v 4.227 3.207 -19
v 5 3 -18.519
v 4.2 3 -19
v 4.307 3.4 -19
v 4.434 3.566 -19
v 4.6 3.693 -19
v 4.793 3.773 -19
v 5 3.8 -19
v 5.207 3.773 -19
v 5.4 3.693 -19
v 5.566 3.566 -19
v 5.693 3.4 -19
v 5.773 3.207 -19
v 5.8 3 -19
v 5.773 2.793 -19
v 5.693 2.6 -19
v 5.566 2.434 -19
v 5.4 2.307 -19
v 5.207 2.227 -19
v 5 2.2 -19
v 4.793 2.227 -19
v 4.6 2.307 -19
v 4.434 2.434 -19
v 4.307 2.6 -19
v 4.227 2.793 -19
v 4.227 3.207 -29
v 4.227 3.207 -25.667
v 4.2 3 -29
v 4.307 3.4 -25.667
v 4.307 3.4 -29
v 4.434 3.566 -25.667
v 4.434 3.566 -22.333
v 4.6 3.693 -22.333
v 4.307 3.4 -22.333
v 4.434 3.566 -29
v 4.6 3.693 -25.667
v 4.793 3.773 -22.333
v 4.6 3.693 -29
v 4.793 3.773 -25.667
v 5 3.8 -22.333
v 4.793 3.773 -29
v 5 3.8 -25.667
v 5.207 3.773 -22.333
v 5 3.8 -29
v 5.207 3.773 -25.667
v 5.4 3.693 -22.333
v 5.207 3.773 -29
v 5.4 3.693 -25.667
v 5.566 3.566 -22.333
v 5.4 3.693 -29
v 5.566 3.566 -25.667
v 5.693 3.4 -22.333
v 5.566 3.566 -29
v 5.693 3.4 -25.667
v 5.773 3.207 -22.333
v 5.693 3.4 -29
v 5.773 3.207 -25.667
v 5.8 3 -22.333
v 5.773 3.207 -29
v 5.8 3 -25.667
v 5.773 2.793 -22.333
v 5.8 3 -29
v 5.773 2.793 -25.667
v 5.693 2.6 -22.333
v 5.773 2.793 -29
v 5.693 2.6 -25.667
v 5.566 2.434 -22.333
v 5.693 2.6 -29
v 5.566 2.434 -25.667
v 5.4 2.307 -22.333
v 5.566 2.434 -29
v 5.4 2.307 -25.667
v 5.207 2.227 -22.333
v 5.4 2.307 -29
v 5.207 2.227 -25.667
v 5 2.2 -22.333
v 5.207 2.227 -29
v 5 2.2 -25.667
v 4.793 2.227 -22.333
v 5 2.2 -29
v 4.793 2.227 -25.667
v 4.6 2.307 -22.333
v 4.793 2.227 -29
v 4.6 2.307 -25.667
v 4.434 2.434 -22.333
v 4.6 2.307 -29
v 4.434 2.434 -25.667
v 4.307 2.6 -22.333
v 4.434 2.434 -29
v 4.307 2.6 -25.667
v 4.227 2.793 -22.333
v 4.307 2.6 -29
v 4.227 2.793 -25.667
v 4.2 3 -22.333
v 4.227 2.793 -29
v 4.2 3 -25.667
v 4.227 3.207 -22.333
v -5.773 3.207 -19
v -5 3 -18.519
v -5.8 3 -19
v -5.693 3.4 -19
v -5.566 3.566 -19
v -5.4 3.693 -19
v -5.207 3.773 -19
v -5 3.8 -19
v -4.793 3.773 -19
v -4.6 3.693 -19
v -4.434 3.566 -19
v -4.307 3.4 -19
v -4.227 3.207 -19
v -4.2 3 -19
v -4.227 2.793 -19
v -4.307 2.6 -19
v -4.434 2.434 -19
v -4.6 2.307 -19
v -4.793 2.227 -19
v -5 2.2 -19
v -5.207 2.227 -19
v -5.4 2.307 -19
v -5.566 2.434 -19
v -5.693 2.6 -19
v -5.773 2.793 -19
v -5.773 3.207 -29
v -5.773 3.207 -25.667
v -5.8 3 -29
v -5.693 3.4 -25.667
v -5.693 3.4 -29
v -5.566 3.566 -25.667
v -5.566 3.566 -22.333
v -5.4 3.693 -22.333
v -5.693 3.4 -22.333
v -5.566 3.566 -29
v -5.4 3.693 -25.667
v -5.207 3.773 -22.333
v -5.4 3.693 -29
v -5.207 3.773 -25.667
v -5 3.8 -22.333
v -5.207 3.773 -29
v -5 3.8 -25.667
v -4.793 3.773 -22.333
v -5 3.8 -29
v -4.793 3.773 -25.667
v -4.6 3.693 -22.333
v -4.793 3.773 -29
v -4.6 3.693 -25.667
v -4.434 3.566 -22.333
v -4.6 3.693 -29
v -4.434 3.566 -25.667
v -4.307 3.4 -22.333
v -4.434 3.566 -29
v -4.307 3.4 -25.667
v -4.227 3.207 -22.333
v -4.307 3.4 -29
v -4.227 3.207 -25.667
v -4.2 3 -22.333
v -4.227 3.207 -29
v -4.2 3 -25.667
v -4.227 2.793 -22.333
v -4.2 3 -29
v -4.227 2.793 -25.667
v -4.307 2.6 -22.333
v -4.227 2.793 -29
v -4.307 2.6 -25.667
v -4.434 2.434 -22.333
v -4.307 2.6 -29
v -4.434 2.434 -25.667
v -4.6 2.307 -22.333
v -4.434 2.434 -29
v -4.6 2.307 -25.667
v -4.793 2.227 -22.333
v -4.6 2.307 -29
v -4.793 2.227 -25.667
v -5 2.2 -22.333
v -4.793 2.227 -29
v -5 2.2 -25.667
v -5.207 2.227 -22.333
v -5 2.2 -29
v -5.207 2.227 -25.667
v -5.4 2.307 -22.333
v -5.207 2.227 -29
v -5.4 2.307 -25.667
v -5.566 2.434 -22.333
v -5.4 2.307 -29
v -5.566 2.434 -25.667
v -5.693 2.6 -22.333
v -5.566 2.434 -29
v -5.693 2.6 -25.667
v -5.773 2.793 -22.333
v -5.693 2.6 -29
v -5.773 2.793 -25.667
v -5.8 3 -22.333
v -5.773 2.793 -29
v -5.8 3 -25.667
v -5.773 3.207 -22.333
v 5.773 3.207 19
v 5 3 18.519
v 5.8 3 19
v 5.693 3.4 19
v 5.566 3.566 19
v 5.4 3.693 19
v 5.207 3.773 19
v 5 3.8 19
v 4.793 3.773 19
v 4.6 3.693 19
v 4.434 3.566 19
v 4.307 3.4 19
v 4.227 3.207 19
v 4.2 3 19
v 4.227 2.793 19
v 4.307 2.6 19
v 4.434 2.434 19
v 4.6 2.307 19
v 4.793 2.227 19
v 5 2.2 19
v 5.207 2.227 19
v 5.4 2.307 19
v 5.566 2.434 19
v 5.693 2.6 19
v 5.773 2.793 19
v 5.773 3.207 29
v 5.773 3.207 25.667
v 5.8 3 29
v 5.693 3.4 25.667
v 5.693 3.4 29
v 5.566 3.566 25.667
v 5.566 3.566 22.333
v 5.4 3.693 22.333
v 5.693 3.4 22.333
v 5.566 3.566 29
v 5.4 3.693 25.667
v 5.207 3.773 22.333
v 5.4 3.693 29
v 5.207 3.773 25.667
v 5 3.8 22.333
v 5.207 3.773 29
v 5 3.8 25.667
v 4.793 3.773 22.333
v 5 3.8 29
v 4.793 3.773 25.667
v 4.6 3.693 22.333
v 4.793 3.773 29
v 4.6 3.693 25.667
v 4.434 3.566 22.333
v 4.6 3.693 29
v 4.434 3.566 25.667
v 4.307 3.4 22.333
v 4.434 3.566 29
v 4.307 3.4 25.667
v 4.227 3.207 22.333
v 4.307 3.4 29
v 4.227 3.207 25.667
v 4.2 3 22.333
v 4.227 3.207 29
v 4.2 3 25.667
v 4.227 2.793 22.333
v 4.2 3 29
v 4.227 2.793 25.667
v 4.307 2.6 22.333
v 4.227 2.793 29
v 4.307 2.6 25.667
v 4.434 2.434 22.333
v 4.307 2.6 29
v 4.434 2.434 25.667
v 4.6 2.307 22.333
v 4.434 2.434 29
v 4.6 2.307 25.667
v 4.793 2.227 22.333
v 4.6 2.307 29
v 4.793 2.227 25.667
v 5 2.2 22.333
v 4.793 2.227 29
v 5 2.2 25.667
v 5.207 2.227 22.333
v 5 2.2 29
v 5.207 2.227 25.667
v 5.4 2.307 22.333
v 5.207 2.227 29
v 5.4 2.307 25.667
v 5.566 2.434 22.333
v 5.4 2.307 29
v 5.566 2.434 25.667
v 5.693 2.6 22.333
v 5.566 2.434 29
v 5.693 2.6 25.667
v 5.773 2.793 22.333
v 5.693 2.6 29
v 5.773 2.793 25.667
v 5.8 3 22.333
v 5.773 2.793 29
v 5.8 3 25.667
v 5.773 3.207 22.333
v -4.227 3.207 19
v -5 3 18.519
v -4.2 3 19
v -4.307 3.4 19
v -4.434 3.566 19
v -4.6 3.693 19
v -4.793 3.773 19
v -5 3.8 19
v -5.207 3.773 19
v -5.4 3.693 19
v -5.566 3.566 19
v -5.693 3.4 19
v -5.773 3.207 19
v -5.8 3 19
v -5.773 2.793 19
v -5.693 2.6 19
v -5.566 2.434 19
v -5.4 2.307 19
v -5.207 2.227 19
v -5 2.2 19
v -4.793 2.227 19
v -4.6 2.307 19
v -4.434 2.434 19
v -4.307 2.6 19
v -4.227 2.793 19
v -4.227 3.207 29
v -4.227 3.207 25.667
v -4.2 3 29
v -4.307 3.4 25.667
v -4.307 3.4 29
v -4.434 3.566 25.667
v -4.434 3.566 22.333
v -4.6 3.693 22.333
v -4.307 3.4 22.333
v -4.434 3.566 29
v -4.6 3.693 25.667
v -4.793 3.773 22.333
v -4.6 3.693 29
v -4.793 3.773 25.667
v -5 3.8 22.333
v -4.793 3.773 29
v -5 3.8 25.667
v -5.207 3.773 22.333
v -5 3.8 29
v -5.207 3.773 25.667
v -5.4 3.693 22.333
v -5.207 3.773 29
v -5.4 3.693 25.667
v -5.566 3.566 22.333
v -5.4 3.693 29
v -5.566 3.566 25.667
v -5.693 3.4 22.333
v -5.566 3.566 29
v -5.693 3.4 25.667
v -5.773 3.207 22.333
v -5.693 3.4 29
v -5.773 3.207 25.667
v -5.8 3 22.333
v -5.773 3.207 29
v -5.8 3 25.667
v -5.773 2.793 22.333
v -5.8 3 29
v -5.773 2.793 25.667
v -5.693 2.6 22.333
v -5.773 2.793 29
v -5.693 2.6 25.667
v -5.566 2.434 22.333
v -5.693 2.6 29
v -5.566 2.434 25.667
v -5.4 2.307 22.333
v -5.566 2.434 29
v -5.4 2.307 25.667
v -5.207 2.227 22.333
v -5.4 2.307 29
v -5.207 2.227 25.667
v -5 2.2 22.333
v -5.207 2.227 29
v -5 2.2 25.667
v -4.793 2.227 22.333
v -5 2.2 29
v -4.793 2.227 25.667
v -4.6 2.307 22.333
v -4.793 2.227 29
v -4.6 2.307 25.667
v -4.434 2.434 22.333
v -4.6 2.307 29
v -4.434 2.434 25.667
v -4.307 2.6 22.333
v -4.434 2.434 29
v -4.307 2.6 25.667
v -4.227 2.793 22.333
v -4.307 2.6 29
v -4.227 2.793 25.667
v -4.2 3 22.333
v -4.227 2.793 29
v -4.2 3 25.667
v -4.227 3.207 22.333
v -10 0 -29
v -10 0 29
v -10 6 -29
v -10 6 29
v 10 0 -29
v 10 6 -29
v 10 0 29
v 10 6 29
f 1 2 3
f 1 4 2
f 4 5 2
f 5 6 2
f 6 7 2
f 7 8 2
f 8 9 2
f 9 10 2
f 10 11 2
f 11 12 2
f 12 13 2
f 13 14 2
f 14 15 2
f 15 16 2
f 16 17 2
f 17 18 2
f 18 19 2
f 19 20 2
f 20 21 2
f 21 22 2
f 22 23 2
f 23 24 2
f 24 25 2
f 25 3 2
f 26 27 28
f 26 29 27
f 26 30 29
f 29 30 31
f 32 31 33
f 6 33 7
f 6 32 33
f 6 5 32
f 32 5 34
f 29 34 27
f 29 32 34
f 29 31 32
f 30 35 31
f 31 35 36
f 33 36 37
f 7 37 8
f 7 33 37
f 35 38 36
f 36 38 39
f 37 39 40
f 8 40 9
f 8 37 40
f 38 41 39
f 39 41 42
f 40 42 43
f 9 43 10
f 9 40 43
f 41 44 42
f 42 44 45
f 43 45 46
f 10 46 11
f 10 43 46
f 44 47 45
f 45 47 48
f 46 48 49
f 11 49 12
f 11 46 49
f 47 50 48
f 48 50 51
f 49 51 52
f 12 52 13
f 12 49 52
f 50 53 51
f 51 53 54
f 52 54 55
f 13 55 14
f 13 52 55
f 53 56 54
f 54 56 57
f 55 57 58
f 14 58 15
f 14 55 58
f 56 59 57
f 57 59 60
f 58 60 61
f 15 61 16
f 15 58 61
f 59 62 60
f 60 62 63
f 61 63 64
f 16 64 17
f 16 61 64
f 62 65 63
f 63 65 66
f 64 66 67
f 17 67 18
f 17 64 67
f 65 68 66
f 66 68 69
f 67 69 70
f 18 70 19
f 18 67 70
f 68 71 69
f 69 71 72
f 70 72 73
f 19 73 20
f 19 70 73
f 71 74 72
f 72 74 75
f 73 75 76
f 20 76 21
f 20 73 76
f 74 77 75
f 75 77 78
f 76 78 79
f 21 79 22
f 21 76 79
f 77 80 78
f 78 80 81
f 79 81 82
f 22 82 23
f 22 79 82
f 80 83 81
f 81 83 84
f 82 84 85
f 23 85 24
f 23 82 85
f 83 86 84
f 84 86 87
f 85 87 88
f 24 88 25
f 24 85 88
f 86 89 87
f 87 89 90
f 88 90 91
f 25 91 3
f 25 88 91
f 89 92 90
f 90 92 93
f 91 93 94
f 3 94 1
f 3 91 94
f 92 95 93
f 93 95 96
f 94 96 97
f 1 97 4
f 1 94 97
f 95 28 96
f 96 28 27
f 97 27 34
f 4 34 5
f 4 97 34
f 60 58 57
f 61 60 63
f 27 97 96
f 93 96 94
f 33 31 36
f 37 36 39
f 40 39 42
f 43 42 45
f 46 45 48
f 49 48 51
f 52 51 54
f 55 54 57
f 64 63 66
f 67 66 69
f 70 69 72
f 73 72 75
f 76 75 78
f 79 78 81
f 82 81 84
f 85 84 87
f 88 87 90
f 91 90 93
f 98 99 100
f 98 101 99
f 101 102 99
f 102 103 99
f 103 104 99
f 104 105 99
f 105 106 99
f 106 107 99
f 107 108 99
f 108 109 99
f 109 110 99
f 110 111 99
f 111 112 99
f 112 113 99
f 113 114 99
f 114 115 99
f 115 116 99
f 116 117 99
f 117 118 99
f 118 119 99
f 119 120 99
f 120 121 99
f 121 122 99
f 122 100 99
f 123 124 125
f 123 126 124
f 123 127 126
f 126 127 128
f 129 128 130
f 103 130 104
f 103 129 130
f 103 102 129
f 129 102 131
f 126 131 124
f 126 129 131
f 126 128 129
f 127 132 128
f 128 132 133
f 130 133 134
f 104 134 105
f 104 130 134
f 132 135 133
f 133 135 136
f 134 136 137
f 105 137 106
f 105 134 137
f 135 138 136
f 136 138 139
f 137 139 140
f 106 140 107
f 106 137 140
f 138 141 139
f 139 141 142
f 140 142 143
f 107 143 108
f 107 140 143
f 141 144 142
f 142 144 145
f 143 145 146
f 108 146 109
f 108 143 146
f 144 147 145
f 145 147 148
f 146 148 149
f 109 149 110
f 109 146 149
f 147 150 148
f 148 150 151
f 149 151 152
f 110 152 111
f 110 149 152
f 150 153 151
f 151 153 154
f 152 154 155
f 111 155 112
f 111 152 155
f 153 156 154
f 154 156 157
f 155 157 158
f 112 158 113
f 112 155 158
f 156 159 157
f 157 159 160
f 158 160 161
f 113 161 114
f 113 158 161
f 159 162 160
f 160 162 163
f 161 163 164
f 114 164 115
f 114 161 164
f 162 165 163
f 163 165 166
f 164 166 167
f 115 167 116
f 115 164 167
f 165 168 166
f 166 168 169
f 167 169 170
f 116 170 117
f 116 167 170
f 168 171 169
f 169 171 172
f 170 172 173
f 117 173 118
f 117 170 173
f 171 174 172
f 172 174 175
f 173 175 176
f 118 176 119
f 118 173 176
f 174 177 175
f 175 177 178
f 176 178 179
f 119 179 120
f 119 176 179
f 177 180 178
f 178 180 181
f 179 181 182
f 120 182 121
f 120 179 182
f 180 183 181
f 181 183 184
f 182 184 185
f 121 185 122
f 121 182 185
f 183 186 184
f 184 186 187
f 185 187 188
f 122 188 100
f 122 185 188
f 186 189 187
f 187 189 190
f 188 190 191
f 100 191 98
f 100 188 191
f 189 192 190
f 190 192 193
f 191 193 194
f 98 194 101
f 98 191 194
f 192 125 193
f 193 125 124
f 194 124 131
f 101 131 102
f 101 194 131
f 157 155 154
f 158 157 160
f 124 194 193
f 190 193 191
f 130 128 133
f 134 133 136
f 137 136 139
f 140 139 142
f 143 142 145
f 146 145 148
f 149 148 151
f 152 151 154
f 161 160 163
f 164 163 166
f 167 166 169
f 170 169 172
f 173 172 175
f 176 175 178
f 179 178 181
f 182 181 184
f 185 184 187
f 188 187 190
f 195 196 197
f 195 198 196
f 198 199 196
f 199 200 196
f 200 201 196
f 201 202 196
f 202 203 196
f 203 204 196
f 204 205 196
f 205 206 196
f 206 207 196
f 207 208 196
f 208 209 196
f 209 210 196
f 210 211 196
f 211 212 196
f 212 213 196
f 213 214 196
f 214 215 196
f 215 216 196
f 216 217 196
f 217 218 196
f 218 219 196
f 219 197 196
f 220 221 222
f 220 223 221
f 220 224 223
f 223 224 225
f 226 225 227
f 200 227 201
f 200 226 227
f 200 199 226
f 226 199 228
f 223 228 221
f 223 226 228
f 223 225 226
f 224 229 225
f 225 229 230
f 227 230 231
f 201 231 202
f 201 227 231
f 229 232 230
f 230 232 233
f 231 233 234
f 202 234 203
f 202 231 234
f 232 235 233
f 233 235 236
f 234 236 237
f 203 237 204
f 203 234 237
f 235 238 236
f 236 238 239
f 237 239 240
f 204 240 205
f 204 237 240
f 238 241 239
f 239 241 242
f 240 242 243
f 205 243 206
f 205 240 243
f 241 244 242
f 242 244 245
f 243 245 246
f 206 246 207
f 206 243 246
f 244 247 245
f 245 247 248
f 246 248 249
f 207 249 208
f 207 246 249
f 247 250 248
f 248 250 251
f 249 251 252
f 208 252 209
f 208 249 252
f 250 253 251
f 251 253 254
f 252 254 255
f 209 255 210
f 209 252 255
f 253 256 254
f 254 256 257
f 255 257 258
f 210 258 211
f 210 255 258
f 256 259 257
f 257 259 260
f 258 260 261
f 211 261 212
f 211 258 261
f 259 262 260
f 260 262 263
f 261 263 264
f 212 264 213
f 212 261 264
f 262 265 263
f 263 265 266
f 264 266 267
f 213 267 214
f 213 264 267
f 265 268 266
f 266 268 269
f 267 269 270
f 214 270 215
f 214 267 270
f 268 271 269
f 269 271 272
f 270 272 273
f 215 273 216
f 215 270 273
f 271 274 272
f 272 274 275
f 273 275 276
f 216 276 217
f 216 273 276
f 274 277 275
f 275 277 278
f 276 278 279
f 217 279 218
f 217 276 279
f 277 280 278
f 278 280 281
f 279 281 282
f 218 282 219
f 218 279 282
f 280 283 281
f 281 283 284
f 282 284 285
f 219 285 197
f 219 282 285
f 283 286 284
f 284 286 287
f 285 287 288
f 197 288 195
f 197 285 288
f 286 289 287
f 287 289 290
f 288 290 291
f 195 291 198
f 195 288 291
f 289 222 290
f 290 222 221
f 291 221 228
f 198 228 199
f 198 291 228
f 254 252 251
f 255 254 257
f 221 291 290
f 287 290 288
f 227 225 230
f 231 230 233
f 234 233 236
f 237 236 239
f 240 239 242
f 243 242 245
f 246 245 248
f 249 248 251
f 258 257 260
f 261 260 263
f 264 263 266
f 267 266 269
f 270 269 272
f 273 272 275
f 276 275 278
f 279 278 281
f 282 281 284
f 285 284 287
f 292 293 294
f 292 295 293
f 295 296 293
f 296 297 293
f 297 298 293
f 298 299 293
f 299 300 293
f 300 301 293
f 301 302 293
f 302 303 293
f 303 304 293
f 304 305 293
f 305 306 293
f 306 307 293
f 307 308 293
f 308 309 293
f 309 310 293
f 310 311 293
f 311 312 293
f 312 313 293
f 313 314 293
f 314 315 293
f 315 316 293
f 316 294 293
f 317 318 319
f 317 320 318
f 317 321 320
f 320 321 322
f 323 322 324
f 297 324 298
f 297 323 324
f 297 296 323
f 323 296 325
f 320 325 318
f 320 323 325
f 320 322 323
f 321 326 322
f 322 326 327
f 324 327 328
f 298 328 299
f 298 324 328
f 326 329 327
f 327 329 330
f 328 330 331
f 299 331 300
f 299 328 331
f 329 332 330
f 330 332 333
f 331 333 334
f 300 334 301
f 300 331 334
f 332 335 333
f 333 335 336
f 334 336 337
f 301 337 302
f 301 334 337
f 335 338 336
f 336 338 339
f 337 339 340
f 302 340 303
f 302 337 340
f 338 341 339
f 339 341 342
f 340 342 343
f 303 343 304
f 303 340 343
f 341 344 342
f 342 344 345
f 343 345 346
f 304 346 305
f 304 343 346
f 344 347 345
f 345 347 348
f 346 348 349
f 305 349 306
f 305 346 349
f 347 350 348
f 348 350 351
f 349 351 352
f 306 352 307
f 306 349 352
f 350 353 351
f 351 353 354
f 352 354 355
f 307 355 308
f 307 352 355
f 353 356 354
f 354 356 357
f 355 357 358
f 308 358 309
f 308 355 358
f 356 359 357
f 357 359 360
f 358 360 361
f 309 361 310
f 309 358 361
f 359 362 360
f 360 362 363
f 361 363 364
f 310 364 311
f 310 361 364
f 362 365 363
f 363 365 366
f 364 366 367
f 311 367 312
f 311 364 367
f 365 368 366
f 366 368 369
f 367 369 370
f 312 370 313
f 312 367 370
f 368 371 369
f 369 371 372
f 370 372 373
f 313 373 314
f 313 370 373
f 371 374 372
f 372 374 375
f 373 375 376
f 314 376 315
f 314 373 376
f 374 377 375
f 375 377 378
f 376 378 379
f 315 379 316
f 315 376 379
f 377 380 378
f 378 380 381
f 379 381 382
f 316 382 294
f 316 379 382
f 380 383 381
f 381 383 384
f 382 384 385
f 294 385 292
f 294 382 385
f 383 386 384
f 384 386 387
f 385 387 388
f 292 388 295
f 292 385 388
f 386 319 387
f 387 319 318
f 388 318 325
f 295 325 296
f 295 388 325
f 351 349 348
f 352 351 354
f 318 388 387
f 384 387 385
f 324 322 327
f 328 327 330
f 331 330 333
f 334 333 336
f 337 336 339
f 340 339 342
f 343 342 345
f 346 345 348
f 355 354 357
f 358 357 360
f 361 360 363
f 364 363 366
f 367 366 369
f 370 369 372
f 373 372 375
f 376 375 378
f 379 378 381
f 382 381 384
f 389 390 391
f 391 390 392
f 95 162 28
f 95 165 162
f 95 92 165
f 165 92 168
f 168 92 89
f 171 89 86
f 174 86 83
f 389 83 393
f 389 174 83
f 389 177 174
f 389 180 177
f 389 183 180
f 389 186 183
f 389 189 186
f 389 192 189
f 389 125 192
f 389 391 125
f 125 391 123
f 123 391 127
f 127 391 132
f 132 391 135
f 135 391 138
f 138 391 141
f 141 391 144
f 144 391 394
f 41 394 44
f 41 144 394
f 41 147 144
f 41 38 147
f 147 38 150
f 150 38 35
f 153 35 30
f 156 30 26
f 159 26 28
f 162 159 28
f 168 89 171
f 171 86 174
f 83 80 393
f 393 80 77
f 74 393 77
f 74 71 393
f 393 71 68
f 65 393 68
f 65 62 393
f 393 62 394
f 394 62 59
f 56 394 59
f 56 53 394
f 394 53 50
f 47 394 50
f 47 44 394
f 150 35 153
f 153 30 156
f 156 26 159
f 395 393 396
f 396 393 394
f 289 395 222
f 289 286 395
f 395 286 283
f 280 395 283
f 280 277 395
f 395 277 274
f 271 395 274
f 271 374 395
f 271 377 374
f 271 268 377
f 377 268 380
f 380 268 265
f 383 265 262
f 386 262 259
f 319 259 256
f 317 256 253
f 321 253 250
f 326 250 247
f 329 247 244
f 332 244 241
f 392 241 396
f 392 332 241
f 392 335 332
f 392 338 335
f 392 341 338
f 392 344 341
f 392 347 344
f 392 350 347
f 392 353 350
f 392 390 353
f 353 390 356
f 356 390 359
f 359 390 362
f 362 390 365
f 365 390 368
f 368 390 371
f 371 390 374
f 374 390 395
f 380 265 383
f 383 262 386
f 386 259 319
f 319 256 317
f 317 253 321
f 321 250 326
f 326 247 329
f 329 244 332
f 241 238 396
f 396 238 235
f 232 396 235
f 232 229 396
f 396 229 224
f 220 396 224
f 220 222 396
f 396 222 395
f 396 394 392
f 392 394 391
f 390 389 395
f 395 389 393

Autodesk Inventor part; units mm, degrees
ref_plane "YZ Plane" through (0, 0, 0) normal (1, 0, 0) x (0, 1, 0)
ref_plane "XZ Plane" through (0, 0, 0) normal (0, 1, 0) x (-1, 0, 0)
ref_plane "XY Plane" through (0, 0, 0) normal (0, 0, 1) x (1, 0, 0)
sketch "スケッチ1" plane through (0, 0, 0) normal (0, 1, 0) x (-1, 0, 0)
  line L0 (-10, 29) -> (10, 29)
  line L1 (10, 29) -> (10, -29)
  line L2 (10, -29) -> (-10, -29)
  line L3 (-10, -29) -> (-10, 29)
  point P0 (0, 0)
  dimension "d0" = 20
  dimension "d2" = 58
  dimension "d3" = 29
  dimension "d4" = 10
extrude "押し出し1" add sketch "スケッチ1" along normal blind 6
sketch "スケッチ2" plane through (-10, 0, 29) normal (0, 0, 1) x (1, 0, 0)
  line L0 (20, 0) -> (0, 0) projected
  line L1 (0, 0) -> (0, 6) projected
  circle A0 centre (5, 3) radius 1
  circle A1 centre (15, 3) radius 1
  point P0 (10, 0)
  dimension "d7" = 2
  dimension "d9" = 10
  dimension "d10" = 5
  dimension "d11" = 3
  dimension "d12" = 3
hole "穴1" at (5, 3, 29) at (-5, 3, 29) direction (0, 0, -1) diameter 1.6 depth 10 tip angle 118
sketch "スケッチ3" plane through (10, 0, -29) normal (0, 0, -1) x (-1, 0, 0)
  line L0 (20, 0) -> (0, 0) projected
  line L1 (0, 0) -> (0, 6) projected
  circle A0 centre (5, 3) radius 1
  circle A1 centre (15, 3) radius 1
  point P0 (10, 0)
  dimension "d20" = 2
  dimension "d22" = 3
  dimension "d23" = 3
  dimension "d24" = 10
  dimension "d25" = 5
hole "穴2" at (5, 3, -29) at (-5, 3, -29) direction (0, 0, 1) diameter 1.6 depth 10 tip angle 118
properties part number "Leg_Shim" material "アセタール樹脂、白"
